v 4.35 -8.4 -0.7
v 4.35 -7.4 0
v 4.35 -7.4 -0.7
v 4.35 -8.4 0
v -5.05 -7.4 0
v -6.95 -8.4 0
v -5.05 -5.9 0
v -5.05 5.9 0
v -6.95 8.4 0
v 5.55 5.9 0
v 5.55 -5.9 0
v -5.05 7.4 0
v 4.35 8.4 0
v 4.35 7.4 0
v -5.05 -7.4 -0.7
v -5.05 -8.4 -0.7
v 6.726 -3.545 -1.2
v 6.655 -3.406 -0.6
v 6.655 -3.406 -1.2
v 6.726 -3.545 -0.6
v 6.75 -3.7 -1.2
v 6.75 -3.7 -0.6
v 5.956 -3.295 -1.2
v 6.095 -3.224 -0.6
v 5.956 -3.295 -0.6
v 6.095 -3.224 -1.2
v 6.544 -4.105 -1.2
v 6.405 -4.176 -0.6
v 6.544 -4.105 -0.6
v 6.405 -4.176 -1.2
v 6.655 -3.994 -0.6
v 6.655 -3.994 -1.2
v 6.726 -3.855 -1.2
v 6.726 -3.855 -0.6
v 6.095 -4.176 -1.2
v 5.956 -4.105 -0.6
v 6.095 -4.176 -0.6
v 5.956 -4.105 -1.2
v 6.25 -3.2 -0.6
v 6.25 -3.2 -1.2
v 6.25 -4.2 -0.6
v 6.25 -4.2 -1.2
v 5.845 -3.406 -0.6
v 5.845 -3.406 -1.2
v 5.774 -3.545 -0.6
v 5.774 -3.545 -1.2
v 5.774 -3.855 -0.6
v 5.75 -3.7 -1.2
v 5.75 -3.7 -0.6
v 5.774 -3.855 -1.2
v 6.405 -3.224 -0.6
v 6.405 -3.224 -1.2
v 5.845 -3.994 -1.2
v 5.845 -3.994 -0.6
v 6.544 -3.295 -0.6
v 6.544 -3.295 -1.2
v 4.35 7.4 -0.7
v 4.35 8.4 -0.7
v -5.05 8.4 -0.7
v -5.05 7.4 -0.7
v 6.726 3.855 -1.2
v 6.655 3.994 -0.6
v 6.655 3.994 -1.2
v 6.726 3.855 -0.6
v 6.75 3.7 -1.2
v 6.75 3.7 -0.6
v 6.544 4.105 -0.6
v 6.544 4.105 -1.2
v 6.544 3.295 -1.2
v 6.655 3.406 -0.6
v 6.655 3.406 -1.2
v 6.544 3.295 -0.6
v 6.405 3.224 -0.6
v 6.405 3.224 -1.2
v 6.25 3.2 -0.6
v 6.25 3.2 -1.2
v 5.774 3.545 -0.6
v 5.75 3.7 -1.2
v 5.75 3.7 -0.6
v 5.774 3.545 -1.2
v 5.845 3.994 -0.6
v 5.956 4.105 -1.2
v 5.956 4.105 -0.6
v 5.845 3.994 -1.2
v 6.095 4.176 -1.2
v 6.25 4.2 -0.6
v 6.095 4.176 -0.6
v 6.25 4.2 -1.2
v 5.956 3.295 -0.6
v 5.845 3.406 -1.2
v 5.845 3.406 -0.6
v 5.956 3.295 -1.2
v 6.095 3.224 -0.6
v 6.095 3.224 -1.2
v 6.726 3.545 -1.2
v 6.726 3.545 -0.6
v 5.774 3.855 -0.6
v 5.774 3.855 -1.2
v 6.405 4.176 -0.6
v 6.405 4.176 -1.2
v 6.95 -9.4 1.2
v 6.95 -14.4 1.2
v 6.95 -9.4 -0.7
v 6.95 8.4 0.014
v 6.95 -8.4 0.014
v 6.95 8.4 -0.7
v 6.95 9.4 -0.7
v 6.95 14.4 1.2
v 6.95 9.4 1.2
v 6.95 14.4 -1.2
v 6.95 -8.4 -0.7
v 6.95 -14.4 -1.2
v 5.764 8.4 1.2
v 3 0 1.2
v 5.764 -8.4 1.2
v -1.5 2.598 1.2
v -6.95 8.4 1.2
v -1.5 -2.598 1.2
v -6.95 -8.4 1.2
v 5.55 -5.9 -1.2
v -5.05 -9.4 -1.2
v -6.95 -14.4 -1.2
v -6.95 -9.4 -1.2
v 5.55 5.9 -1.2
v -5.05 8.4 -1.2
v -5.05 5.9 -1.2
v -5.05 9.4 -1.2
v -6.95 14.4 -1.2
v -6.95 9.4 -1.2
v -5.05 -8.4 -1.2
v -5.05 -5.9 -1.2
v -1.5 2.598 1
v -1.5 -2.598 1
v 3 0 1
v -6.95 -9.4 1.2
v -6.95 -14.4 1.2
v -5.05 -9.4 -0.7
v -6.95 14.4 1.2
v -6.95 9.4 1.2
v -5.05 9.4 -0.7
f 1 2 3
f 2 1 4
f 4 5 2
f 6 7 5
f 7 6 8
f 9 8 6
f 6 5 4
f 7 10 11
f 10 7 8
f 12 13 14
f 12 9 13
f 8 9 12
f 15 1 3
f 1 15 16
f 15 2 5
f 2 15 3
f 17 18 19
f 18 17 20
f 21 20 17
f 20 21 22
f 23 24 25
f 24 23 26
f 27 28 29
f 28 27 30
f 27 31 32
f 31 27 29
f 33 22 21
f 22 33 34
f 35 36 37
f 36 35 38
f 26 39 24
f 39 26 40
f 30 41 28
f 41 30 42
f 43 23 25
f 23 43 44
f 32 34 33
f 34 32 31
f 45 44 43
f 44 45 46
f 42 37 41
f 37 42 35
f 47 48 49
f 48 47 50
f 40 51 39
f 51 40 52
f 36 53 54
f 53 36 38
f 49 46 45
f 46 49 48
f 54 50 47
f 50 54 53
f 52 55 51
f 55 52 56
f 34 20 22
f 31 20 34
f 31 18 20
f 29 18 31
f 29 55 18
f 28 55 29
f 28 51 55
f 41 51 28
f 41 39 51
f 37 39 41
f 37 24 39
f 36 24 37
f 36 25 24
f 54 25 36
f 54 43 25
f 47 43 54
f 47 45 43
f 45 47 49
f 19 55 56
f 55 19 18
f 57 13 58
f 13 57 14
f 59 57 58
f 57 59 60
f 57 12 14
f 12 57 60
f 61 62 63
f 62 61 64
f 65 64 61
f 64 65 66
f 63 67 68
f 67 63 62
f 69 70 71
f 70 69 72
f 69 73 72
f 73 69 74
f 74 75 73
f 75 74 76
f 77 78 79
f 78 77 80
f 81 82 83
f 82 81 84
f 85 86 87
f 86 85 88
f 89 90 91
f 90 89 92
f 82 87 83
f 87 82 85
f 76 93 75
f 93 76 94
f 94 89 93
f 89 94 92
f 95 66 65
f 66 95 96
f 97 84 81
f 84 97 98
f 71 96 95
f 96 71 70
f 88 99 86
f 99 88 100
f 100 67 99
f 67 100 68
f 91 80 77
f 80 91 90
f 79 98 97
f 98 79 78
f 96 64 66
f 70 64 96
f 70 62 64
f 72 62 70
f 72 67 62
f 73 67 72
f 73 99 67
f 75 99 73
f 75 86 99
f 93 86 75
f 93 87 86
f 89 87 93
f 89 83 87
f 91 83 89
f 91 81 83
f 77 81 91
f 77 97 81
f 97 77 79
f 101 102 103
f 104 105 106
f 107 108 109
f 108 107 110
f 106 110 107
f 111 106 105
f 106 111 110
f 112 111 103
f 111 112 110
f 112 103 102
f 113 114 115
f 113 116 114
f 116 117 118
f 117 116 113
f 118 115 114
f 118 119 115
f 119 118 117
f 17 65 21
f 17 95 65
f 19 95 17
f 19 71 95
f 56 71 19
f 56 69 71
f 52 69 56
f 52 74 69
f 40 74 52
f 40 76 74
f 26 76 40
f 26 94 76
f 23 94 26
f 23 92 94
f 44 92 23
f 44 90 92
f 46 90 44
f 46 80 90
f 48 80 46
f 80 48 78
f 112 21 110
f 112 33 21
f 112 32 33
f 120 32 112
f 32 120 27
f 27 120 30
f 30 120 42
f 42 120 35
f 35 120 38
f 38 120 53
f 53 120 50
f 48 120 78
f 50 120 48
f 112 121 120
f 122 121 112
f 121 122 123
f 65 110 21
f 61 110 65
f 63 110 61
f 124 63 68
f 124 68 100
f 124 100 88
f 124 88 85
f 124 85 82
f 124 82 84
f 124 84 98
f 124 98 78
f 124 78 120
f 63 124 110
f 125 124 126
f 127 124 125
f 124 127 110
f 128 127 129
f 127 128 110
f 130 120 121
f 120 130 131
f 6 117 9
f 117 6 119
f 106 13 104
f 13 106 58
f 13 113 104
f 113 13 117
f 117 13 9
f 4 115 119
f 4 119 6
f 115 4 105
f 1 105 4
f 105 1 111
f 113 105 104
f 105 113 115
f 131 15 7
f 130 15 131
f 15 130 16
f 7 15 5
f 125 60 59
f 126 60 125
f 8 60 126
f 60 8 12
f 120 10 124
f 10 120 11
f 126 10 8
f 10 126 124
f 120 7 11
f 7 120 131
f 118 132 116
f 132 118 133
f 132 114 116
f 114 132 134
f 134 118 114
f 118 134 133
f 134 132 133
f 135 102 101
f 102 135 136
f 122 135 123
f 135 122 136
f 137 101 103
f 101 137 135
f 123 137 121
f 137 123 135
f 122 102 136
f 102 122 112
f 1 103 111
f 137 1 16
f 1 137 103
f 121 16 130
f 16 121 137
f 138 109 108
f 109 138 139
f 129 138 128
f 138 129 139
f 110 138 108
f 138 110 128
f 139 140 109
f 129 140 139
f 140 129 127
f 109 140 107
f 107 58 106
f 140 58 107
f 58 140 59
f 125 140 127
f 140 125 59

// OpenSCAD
PieceLength = 13.9;
PieceWidth = 16.8;
PieceHeight = 2.4;
SideClipWidth = 2.5;
BackBurrLength = 1.9;
BackBurrHeight = 1.2;
BackDivotLength = PieceLength - 1.4;
RailWidth = 1.0;
RailLength = 11.3;
RailHeight = 0.7;
HoleDiameter = 1.0;
HoleRadius = HoleDiameter / 2;
HoleOffsetFromSide = 4.2;

difference() {
    // Main block
    cube([PieceLength, PieceWidth, PieceHeight], true);
    // Forward slant at top
    translate([7.5, 0, 3]) rotate([0, 45, 0]) cube([5, PieceWidth+.1, 5], true);
    // Backside Burr
    translate([
        -(PieceLength/2)+(BackBurrLength/2)-.1,
        0,
        -(PieceHeight/2)+(BackBurrHeight/2)-.1
    ])
    cube([
        BackBurrLength+.2,
        PieceWidth+.1,
        BackBurrHeight+.2
    ], true);
    // Backside divot
    translate([
        (BackDivotLength/2)-(PieceLength/2)-.1,
        0,
        -(PieceHeight/2)+(BackBurrHeight/2)-.1
    ])
    cube([
        BackDivotLength + .2,
        PieceWidth - (2 * SideClipWidth),
        BackBurrHeight + .2
    ], true);
    // Rails
    for(a = [-1:2:1]) {
        translate([
            (RailLength/2) - (PieceLength/2),
            a * PieceWidth / 2, 
            (2*BackBurrHeight-PieceHeight-RailHeight)/2
        ])  
        cube([RailLength, 2 * RailWidth, RailHeight], true);
        translate([
            (PieceLength/2) - HoleRadius - .2,
            a*((PieceWidth/2) - HoleOffsetFromSide - HoleRadius),
            -(PieceHeight/2)
        ])
        cylinder(2*0.6, HoleRadius, HoleRadius, true, $fn = 20);
    }
    // Arrow
    translate([0, 0, PieceHeight/2])
    cylinder(.4, 3, 3, true, $fn=3);
}

// Supports
OutCropHeight = BackBurrHeight - RailHeight;
OutCropLength = PieceLength - BackBurrLength;
for (a = [-1:2:1]) {
    translate([0, a * ((PieceWidth/2)+3.5), 0])
    cube([PieceLength, 5, PieceHeight], true);
    translate([
        (PieceLength - OutCropLength)/2,
        a * ((PieceWidth/2)+1),
        (OutCropHeight-PieceHeight)/2
    ])
    cube([OutCropLength, 2, OutCropHeight], true);
}
